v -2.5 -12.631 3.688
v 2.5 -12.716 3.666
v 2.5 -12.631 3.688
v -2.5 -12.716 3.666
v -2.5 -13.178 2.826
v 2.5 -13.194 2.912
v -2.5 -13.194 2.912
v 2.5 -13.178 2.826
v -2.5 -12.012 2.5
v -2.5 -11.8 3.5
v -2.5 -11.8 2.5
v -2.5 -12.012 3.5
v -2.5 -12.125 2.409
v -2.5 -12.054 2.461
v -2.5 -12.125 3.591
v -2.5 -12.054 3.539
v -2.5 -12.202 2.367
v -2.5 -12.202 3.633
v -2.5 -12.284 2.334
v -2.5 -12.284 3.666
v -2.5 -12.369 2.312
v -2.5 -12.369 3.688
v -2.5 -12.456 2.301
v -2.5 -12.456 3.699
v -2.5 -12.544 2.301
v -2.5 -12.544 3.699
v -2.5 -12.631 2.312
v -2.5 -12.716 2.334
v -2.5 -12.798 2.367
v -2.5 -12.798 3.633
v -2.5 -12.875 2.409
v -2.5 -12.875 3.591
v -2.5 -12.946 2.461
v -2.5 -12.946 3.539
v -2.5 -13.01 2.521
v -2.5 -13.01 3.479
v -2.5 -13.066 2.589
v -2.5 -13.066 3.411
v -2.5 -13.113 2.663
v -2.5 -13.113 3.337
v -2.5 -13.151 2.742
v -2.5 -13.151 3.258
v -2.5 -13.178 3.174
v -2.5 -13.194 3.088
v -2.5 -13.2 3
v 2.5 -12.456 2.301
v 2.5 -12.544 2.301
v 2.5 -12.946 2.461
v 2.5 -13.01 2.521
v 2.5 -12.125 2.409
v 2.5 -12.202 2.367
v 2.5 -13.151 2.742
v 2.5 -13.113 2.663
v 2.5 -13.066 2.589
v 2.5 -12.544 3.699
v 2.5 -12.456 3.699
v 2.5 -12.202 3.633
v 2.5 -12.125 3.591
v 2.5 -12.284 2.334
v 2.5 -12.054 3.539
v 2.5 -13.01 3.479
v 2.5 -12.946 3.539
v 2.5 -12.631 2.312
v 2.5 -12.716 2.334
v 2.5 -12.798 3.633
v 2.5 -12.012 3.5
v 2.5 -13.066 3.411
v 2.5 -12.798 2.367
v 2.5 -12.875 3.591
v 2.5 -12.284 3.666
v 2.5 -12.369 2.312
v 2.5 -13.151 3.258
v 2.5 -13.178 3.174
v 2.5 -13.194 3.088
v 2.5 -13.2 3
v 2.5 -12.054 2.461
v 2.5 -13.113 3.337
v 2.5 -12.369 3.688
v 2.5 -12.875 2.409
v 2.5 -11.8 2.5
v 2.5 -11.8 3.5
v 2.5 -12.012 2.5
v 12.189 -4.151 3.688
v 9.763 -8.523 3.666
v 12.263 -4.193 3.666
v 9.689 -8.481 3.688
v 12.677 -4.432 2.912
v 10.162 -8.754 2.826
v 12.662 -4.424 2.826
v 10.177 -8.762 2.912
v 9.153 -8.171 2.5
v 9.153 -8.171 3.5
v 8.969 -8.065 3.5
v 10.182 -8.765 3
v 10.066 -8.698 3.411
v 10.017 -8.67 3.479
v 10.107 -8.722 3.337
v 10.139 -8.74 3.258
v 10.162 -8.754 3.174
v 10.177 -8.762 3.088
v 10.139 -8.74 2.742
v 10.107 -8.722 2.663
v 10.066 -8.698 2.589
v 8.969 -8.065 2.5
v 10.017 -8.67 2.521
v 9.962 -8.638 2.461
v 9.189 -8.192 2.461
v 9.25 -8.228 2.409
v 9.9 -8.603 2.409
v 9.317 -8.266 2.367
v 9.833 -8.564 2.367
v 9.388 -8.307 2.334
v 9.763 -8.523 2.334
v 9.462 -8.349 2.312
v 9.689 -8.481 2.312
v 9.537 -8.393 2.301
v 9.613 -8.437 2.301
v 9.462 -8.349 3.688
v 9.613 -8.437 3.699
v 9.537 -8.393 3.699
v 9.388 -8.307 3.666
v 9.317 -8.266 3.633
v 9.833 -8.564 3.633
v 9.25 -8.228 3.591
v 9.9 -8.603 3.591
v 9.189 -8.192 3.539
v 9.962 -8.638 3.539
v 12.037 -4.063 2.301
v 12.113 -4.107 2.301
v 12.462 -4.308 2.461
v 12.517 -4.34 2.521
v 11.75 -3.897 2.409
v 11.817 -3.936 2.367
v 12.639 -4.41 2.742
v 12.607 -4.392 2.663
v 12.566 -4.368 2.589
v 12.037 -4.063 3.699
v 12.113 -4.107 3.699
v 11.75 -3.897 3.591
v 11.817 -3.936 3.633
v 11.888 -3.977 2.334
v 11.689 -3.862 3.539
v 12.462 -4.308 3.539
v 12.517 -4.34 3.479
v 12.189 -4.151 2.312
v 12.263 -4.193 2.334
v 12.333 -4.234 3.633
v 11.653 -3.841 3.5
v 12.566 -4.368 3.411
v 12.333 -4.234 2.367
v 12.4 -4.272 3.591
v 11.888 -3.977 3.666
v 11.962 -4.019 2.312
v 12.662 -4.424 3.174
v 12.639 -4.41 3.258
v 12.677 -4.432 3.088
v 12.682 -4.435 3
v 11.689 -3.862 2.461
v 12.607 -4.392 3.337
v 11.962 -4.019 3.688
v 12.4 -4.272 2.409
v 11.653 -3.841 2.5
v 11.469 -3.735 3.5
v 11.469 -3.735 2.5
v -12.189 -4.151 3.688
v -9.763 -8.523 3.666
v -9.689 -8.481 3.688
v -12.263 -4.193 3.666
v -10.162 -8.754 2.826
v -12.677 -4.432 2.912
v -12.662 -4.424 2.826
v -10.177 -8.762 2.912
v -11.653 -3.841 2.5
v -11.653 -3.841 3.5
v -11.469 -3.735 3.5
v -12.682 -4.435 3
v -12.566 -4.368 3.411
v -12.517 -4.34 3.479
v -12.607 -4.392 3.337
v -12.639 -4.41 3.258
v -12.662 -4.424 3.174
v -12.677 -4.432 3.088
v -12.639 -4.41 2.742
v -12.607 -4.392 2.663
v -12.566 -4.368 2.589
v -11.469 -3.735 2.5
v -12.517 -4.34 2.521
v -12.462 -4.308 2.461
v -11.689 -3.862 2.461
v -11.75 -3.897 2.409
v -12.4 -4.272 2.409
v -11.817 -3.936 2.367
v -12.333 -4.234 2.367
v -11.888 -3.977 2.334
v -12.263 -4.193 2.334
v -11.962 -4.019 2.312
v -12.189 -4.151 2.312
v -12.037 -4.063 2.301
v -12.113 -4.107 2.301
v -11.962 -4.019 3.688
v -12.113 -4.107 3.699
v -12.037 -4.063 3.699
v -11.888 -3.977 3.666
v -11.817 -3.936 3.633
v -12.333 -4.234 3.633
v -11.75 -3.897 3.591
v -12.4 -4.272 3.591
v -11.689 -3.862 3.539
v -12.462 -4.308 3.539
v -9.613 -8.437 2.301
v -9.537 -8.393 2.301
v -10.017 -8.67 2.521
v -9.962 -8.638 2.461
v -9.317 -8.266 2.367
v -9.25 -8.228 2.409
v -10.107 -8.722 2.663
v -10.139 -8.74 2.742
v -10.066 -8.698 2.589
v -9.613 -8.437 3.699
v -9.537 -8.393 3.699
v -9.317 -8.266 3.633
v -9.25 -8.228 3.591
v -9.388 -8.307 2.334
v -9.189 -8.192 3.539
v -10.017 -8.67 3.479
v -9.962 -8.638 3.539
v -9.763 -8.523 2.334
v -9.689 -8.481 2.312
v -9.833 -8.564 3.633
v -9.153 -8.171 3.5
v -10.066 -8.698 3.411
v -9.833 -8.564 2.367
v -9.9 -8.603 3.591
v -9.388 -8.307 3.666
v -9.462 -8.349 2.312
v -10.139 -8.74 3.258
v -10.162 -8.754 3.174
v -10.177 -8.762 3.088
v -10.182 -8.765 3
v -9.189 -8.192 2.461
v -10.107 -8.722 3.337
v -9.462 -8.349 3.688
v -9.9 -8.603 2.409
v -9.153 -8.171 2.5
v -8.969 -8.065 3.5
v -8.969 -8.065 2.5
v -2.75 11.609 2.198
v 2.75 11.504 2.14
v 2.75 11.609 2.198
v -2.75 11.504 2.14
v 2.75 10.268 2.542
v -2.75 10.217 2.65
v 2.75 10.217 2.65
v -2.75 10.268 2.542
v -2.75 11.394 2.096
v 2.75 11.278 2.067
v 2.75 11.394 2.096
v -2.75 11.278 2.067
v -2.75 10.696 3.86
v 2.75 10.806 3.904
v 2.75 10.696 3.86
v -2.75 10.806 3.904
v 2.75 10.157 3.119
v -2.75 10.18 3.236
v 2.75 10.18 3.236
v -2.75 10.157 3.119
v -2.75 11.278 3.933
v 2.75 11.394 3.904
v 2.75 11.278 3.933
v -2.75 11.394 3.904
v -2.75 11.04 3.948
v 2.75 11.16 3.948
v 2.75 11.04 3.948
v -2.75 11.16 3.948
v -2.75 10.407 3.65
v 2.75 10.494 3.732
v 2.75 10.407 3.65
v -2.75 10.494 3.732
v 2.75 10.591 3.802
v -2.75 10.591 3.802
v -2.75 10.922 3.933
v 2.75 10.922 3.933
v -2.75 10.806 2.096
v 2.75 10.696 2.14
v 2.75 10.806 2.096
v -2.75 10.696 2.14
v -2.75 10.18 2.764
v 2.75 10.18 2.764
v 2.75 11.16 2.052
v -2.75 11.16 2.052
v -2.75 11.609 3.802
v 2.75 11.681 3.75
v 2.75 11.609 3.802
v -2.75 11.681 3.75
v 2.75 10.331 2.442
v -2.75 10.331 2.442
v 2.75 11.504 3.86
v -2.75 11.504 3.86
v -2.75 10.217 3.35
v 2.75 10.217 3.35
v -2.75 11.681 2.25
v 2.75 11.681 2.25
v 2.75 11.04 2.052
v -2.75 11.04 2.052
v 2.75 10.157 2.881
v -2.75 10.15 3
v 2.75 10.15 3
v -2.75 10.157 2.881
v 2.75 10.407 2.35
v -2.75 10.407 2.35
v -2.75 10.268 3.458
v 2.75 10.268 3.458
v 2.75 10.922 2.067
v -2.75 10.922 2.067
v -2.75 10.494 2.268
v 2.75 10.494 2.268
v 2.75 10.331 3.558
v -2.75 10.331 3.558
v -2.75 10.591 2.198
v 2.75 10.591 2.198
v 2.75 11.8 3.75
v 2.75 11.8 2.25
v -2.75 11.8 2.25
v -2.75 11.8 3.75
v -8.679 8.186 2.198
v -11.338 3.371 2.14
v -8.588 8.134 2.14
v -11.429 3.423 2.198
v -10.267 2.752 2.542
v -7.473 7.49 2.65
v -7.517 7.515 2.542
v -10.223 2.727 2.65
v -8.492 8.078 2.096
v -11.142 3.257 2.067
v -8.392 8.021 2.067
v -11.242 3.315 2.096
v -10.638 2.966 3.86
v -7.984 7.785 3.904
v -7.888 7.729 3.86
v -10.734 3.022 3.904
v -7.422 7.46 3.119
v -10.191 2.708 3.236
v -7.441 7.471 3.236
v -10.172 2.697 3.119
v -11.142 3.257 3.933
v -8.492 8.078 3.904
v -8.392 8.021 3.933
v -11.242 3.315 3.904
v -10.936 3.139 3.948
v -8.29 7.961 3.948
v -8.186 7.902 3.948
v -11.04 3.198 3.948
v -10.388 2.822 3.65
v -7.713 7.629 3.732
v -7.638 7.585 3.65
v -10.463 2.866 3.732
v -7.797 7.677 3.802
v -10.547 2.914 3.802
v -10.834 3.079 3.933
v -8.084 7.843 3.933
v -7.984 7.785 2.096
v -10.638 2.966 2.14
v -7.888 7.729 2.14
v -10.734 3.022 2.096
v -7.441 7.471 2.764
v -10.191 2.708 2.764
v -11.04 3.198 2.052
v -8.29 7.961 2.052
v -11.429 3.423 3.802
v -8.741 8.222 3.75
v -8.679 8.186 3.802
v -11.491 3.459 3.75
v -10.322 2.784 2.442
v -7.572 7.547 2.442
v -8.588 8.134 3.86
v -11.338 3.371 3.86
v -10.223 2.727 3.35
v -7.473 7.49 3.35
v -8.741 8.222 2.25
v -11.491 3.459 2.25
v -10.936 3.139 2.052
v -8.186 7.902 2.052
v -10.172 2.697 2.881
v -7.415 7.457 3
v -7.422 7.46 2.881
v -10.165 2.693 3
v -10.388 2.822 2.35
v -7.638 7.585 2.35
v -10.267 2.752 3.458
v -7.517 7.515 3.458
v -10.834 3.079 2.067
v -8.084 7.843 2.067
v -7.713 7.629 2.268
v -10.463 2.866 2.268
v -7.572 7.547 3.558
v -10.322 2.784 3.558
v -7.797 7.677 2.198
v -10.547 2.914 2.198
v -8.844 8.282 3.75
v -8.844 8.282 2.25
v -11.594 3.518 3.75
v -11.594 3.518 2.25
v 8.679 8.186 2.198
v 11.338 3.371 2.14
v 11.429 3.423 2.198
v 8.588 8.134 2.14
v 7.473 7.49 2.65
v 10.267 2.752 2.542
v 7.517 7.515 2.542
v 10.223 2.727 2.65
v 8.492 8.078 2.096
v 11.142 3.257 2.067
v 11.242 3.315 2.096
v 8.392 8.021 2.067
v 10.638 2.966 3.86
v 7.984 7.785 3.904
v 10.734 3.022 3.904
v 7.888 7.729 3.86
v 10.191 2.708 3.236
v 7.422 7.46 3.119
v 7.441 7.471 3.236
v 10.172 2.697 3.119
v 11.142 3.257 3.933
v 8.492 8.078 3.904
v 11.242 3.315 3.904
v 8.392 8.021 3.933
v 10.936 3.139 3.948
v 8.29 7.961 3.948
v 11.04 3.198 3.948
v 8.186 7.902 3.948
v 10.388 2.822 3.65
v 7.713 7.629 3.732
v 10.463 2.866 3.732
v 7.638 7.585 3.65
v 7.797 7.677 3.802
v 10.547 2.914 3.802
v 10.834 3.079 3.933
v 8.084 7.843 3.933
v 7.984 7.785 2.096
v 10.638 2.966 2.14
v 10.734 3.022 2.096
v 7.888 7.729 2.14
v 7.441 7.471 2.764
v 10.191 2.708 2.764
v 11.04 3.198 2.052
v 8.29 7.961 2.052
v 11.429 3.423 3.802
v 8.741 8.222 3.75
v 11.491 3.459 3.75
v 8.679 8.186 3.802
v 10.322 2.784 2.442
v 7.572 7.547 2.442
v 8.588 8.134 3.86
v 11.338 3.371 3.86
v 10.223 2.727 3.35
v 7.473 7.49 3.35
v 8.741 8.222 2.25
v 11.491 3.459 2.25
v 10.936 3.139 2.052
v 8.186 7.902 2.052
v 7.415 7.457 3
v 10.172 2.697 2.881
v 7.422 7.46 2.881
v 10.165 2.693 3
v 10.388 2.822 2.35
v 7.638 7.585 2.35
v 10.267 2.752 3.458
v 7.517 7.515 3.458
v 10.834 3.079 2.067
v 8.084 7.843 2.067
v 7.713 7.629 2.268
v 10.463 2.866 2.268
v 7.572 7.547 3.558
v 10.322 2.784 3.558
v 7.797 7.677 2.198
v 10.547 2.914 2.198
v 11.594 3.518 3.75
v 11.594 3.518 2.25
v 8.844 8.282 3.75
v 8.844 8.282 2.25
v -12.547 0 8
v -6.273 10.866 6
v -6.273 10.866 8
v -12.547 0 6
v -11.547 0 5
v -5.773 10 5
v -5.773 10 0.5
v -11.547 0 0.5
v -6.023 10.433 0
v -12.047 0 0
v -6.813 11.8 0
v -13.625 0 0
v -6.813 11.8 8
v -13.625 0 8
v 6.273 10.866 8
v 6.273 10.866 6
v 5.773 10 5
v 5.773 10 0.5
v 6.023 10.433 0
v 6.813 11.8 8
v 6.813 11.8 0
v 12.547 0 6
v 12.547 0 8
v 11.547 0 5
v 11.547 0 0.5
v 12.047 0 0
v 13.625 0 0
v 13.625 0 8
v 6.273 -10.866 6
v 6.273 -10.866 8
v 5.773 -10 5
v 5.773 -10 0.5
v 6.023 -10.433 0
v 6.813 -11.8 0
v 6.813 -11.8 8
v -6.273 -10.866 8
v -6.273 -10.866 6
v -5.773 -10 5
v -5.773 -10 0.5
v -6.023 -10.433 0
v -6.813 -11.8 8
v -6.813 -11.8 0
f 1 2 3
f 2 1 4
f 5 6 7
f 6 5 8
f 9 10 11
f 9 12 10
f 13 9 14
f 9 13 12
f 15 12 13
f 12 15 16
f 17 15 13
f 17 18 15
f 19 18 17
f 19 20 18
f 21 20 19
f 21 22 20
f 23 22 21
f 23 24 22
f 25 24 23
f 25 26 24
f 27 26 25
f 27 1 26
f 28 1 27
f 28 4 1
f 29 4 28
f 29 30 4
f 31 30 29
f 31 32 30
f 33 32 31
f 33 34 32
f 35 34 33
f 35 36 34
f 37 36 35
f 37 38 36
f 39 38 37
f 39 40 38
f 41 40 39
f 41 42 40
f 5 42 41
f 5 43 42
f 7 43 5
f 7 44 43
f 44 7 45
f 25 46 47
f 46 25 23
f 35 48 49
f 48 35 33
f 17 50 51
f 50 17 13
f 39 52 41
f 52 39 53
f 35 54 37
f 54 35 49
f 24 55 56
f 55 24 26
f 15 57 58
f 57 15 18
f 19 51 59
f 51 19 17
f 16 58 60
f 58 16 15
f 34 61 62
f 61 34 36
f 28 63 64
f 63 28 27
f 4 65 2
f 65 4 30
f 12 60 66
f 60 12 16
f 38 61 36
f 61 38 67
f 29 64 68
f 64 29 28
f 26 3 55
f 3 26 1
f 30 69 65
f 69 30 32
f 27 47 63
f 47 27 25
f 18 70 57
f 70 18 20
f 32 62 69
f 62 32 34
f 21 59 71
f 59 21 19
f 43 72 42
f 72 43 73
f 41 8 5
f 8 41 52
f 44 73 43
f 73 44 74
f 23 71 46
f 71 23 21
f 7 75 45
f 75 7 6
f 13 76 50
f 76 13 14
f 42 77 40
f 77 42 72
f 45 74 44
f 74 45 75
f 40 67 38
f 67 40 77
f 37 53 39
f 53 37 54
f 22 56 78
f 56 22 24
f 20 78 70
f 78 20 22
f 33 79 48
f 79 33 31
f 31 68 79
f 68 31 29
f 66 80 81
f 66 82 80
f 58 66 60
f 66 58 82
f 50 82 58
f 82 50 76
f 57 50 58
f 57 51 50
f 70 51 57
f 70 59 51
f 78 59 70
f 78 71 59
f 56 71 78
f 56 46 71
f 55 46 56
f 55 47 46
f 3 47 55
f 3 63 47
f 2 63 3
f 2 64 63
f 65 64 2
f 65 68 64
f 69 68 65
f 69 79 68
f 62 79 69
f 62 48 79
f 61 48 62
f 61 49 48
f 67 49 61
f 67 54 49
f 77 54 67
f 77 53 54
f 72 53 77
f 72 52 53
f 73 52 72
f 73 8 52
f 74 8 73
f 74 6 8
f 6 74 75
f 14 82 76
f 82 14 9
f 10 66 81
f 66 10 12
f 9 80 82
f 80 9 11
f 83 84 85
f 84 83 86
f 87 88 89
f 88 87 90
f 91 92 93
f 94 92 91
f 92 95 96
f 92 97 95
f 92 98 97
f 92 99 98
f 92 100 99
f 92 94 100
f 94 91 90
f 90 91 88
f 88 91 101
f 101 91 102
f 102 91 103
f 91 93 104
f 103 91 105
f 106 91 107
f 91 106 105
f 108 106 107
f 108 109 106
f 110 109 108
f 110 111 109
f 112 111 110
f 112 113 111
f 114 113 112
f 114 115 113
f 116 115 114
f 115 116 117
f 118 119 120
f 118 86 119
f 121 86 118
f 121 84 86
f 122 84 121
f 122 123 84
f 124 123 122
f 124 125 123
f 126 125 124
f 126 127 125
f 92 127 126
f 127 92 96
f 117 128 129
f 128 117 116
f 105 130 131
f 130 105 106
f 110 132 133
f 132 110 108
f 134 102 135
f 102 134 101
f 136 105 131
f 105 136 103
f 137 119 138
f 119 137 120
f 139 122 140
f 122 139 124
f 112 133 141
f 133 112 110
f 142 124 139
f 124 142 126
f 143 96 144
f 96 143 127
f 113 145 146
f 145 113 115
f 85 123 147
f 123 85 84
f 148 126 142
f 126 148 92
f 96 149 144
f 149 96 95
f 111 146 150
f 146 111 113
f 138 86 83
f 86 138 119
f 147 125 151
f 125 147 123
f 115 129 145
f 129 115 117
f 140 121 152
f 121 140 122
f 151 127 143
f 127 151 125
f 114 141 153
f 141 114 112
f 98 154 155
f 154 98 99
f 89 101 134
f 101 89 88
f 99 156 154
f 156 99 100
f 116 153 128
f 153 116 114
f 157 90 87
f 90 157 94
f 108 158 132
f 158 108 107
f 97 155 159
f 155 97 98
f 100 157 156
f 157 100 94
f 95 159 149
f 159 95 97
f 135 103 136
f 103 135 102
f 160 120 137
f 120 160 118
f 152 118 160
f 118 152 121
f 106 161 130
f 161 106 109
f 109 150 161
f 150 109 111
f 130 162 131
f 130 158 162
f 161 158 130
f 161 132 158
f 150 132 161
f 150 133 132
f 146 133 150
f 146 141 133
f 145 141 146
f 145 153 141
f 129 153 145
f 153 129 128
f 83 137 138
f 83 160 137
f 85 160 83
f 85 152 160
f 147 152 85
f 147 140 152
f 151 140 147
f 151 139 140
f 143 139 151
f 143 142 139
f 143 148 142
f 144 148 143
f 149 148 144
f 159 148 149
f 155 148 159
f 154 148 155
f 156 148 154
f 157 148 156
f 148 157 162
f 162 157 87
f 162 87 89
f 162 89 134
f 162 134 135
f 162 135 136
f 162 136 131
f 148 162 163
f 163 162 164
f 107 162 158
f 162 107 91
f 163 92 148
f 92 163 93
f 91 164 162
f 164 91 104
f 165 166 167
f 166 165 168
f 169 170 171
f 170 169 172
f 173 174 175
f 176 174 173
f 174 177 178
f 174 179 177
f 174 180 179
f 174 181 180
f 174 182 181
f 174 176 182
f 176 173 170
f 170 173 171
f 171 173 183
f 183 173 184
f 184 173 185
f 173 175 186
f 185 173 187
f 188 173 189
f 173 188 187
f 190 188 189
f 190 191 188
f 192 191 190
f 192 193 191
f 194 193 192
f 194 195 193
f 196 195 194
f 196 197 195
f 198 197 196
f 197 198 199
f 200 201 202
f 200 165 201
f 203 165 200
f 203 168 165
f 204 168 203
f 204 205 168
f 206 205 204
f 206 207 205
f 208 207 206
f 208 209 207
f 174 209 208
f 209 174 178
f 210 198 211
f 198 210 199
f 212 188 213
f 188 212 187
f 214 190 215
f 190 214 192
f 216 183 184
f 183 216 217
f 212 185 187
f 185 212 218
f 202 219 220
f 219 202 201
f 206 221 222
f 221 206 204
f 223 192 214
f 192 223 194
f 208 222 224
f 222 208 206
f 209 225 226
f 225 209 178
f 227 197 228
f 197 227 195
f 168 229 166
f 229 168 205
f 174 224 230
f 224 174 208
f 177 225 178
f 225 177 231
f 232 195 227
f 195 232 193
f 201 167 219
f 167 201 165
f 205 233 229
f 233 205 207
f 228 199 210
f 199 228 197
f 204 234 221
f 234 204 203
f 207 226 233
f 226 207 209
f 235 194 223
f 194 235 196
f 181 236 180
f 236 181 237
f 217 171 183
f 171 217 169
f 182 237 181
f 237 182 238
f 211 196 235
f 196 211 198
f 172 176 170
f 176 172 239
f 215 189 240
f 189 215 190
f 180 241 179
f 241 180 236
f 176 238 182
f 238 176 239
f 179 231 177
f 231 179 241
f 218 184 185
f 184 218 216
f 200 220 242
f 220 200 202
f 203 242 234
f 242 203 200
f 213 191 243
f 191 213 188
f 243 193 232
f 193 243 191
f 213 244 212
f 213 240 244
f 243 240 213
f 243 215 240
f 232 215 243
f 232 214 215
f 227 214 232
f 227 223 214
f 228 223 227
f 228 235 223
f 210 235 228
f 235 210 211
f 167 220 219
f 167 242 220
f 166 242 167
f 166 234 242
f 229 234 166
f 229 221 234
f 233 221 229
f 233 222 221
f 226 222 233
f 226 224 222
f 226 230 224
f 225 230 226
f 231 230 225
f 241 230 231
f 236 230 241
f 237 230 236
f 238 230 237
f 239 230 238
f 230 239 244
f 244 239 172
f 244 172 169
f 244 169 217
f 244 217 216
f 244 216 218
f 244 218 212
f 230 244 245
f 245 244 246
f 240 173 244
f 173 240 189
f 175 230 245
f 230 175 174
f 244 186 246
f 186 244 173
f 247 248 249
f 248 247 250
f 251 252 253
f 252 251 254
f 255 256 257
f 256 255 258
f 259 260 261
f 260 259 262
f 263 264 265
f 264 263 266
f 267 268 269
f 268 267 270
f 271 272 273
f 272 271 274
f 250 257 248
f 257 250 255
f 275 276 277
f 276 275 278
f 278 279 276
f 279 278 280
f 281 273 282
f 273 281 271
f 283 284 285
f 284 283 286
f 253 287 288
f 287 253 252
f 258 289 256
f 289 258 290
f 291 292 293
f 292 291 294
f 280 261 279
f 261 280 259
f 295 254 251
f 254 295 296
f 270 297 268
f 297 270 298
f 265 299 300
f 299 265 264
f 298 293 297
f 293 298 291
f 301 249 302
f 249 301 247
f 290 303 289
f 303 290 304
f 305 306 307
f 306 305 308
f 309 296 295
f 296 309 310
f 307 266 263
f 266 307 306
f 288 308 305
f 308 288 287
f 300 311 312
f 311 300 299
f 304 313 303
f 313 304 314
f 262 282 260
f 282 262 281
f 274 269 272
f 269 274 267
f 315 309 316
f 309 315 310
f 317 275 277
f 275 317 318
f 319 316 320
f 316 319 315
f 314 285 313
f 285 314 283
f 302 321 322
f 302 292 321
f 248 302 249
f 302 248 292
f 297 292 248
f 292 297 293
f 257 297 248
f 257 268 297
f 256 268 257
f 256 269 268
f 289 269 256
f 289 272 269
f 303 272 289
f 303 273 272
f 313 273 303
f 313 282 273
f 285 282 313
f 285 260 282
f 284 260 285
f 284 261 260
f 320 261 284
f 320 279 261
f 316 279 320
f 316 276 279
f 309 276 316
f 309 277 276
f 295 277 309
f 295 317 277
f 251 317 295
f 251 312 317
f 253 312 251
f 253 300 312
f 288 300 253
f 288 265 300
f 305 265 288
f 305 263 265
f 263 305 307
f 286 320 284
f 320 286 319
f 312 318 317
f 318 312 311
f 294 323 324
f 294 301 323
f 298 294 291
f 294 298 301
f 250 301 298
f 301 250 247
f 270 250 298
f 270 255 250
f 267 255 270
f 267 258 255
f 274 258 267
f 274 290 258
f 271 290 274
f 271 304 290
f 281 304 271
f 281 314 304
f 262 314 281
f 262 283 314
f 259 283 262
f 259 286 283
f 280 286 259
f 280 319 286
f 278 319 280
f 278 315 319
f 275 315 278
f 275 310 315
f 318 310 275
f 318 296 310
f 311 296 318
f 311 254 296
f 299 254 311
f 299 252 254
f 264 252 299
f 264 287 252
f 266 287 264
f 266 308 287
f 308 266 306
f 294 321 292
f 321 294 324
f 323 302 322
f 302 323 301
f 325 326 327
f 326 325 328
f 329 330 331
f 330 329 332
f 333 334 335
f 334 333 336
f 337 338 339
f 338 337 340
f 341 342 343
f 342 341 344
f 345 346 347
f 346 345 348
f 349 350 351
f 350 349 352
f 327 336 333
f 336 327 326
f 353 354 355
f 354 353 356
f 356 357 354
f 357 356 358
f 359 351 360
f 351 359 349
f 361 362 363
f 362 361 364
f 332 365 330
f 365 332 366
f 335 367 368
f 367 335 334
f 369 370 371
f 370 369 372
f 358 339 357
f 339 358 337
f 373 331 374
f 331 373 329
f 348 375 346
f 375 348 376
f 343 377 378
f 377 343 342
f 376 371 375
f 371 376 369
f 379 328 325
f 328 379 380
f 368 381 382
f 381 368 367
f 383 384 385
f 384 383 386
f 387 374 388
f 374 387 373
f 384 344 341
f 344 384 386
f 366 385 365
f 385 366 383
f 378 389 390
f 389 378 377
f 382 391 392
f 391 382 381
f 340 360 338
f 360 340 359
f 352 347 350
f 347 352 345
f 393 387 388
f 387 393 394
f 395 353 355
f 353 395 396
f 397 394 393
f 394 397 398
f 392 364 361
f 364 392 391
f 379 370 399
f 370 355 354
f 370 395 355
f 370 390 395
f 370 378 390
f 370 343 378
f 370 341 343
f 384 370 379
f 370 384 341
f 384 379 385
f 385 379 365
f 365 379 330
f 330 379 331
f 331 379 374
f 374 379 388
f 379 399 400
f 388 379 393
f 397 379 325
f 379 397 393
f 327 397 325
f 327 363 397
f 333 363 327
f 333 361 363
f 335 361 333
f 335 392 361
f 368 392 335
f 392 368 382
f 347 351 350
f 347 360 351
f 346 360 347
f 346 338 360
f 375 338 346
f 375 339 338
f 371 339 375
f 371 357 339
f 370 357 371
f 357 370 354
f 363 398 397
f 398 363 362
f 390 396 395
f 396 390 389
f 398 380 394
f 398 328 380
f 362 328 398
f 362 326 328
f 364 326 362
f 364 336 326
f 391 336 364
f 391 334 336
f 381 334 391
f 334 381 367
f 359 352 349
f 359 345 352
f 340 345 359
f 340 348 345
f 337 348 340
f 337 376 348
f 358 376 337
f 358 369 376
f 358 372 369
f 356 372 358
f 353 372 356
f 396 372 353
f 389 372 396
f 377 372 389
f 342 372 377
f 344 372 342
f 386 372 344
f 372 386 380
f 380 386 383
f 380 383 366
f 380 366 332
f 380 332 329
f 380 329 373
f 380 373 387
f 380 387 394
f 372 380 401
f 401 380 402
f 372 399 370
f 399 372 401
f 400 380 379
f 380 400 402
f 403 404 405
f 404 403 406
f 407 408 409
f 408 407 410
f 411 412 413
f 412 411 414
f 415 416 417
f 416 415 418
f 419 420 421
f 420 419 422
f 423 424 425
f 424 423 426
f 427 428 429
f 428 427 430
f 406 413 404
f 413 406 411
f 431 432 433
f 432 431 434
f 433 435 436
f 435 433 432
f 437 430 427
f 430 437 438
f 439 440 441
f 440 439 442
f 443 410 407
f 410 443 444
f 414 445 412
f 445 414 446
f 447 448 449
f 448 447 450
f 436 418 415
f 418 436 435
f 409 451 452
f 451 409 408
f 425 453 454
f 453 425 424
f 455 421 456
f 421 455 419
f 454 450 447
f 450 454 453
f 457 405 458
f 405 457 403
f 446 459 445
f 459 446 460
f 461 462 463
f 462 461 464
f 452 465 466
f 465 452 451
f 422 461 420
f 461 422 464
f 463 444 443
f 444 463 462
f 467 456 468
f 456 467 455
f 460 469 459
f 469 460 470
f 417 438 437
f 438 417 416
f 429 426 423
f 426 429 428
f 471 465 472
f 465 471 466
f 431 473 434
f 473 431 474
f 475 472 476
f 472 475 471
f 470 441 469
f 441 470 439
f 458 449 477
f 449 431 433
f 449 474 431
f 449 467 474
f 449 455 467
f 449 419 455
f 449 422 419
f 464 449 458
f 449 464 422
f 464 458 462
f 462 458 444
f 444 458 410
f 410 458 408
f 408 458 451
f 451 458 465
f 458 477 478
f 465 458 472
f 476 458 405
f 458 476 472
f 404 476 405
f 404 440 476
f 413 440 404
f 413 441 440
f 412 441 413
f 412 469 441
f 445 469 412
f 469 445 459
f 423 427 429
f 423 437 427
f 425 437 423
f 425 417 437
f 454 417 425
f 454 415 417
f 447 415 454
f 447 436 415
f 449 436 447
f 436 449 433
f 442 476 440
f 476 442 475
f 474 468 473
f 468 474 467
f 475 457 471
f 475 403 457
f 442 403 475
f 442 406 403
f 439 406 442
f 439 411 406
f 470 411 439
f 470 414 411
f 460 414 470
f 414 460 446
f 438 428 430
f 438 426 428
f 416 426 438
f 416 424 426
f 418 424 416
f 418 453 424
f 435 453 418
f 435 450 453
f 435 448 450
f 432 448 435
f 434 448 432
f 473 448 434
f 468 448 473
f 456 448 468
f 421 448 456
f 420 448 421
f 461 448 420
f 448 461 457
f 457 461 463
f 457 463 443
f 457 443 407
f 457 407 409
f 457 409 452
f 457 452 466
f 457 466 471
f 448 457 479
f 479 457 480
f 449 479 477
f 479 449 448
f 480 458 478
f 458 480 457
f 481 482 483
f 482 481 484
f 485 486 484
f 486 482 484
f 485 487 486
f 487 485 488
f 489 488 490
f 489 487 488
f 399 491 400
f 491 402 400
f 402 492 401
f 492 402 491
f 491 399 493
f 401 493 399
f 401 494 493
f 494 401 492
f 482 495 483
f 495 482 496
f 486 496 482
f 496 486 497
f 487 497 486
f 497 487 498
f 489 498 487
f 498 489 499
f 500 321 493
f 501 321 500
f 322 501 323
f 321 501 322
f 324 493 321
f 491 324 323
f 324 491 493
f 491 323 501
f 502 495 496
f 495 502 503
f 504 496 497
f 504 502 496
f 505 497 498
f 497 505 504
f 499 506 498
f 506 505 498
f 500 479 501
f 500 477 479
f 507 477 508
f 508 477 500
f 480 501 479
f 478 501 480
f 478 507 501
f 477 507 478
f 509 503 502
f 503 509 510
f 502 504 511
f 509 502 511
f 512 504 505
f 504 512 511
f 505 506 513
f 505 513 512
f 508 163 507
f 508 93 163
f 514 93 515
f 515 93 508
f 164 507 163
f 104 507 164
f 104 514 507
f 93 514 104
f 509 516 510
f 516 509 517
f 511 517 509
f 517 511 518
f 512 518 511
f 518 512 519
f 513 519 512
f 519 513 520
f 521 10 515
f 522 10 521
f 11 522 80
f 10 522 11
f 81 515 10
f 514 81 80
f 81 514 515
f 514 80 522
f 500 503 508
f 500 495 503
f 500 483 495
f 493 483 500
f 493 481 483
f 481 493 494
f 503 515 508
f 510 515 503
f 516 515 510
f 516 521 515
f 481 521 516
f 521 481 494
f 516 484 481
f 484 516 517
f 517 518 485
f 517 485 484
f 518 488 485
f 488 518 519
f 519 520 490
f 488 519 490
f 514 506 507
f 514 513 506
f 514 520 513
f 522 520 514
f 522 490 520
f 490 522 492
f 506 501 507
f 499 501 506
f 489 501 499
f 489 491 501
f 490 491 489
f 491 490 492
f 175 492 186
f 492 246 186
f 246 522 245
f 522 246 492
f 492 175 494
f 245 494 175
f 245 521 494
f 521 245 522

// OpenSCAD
$fn = 50;

//diameter =  (12.2)*sqrt(5);
radius = 13.6;
diameter = radius * 2;

module imported_model() {

  difference() {
    intersection() {
      cube([100, 150, 150], center=true);

      translate([-1.5, -4.8, 0])
        import("wall-honeycomb-part.stl");
    }

    translate([-0.9 + radius, diameter / 2, 3]) {
      clipse_inverse(0.1);
    }

    translate([-0.9 + radius, diameter * 2, 3]) {
      clipse_inverse(0.1);
    }
  }

  translate([-0.9, diameter + radius / 2, 3]) {
    clipse();
  }
}

//imported_model();

module clipse(offset = 0) {
  rotate([90, 0, 90])
    union() {
      cylinder(r=0.7 + offset, h=5 + offset * 2, center=true);
      translate([0.8, 0, 0])
        cube([0.8, 1 + offset * 2, 5 + offset * 2], center=true);
    }
}

module clipse_inverse(offset = 0) {
  scale([-1, 1, 1])
    clipse(offset);
}

h_inner = 10;
r_inner = h_inner * 2 / sqrt(3);

h_outer = 10 + 1.8;
r_outer = h_outer * 2 / sqrt(3);

h_thin = 10 + 1;
r_thin = h_thin * 2 / sqrt(3);

total_height = 8;

small_value = 0.1;

module model_new() {

  difference() {
    linear_extrude(8, center=true)
      polygon([[-r_outer / 2, -h_outer], [-r_outer, 0], [-r_outer / 2, h_outer], [r_outer / 2, h_outer], [r_outer, 0], [r_outer / 2, -h_outer]]);

    linear_extrude(8 + small_value, center=true)
      polygon([[-r_thin / 2, -h_thin], [-r_thin, 0], [-r_thin / 2, h_thin], [r_thin / 2, h_thin], [r_thin, 0], [r_thin / 2, -h_thin]]);
  }

  difference() {
    linear_extrude(5, center=true)
      polygon([[-r_outer / 2, -h_outer], [-r_outer, 0], [-r_outer / 2, h_outer], [r_outer / 2, h_outer], [r_outer, 0], [r_outer / 2, -h_outer]]);

    linear_extrude(5 + small_value, center=true)
      polygon([[-r_inner / 2, -h_inner], [-r_inner, 0], [-r_inner / 2, h_inner], [r_inner / 2, h_inner], [r_inner, 0], [r_inner / 2, -h_inner]]);
  }
}

module model_rotate() {
  rotate_extrude($fn=6) {
    polygon(
      [
        [r_outer, total_height],
        [r_outer, 0],
        [r_inner + 0.5, 0],
        [r_inner, 0.5],
        [r_inner, total_height - 3],
        [r_inner + 1, total_height - 2],
        [r_inner + 1, total_height],
      ]
    );
  }
}

//model_new();

translate([0, -h_outer - 0.7, 3])
  clipse();

rotate([0, 0, 60])
  translate([0, -h_outer - 0.7, 3])
    clipse();

rotate([0, 0, -60])
  translate([0, -h_outer - 0.7, 3])
    clipse();

difference() {
  model_rotate();

  translate([0, h_outer - 0.7, 3])
    clipse_inverse(0.25);

  rotate([0, 0, 60])
    translate([0, h_outer - 0.7, 3])
      clipse_inverse(0.25);

  rotate([0, 0, -60])
    translate([0, h_outer - 0.7, 3])
      clipse_inverse(0.25);
}

//translate([0, h_outer*2, 0])
//  model_rotate();

//translate([r_outer*1.5, h_outer, 0])
//  model_rotate();

//clipse(0.1);

//translate([-0.9, diameter + radius/2, 3]) {
//}

//translate([0, 34.1, 0])
//cube([4, 13.6, 1], center=true);
